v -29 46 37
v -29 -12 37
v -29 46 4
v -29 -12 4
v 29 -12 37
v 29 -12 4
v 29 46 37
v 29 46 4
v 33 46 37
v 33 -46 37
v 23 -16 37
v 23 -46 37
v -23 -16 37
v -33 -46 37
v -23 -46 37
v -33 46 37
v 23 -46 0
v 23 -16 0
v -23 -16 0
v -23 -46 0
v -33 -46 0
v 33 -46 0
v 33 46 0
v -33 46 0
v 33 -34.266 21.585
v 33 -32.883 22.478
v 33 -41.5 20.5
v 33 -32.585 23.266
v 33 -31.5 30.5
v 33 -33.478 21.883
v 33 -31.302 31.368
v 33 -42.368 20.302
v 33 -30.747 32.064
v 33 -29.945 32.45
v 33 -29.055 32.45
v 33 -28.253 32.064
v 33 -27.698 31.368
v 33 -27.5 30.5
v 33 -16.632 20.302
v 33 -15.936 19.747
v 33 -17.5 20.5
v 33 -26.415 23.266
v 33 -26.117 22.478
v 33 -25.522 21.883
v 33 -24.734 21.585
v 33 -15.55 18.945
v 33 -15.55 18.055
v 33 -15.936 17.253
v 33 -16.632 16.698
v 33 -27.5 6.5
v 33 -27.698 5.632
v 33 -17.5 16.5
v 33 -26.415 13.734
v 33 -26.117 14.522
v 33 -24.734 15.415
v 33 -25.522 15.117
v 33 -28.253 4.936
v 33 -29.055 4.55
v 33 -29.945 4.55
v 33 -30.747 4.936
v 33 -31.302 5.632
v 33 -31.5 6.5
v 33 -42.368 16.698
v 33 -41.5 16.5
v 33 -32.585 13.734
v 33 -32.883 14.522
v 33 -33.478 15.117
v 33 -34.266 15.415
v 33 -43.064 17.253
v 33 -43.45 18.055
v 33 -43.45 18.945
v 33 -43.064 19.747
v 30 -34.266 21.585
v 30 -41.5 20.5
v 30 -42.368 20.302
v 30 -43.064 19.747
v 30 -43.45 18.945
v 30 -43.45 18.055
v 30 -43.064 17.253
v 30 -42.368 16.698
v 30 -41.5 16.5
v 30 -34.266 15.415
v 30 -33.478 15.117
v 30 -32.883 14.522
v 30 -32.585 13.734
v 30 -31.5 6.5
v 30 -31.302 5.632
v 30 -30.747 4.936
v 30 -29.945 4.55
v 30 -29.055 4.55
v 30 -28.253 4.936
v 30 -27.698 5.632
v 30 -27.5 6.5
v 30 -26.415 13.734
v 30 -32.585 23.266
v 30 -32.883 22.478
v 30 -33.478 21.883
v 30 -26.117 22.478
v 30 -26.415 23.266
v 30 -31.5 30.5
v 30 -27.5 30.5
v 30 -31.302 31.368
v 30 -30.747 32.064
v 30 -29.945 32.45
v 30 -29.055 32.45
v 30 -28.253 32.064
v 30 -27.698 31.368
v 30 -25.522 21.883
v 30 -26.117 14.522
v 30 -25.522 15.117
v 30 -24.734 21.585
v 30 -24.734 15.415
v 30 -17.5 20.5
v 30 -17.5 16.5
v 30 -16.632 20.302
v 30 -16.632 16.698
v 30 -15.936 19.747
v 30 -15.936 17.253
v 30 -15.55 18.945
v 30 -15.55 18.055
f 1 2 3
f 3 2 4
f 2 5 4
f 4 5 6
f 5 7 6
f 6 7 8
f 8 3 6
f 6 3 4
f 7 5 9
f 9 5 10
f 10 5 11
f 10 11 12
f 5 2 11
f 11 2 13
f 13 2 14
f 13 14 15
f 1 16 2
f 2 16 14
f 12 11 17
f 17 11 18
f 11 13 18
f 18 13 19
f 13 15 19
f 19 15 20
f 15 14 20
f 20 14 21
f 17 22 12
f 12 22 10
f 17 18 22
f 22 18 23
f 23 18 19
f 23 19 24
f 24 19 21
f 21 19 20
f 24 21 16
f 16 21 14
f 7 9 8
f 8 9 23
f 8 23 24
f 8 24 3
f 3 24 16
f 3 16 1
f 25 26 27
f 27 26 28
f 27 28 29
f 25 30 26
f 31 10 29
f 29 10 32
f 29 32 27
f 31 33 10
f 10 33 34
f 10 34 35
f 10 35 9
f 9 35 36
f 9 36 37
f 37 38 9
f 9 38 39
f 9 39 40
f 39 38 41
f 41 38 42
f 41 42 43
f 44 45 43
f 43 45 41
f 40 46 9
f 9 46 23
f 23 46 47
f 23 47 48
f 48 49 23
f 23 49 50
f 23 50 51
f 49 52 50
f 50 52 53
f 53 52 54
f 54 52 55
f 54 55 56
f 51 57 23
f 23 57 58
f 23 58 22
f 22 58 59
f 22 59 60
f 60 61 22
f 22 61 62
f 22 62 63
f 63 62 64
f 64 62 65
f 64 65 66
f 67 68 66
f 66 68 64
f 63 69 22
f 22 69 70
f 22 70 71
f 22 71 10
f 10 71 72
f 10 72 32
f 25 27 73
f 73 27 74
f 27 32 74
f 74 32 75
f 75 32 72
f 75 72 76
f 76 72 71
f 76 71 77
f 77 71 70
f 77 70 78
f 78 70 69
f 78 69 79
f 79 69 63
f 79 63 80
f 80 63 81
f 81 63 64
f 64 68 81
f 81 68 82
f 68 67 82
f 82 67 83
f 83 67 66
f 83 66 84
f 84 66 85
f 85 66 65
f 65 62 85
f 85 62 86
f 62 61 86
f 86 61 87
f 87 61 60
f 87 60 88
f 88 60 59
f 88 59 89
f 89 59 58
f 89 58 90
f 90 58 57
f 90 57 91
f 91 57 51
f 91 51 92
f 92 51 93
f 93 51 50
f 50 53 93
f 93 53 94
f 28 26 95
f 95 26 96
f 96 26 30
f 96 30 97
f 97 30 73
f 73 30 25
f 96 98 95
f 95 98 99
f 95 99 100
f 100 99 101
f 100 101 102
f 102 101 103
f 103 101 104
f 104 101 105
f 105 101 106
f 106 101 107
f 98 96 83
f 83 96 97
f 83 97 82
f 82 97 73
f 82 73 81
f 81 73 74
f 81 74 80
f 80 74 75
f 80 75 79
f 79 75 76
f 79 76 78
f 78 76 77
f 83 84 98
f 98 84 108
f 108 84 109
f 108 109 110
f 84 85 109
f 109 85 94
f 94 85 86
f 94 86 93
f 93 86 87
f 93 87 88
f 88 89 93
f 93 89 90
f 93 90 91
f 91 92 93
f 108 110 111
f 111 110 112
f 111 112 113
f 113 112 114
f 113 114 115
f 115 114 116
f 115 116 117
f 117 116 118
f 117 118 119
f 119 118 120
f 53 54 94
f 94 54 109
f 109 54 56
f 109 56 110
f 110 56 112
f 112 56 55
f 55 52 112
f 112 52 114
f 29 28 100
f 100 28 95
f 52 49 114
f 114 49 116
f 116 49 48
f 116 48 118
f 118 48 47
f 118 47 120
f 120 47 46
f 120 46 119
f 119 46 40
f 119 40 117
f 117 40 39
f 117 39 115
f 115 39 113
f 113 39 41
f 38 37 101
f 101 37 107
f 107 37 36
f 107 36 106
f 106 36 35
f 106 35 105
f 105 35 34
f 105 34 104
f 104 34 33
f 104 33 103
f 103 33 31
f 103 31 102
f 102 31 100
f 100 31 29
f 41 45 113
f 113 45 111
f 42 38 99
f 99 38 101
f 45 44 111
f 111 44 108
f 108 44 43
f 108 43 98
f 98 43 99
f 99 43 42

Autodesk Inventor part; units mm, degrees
sketch "Skizze1" plane through (0, 0, 0) normal (0, 0, 1) x (1, 0, 0)
  line L0 (-33, 46) -> (33, 46)
  line L1 (33, 46) -> (33, -46)
  line L2 (33, -46) -> (-33, -46)
  line L3 (-33, -46) -> (-33, 46)
  line L4 (0, -64.4) -> (0, 64.4) projected
  line L5 (-46.2, 0) -> (46.2, 0) projected
  point P0 (0, 0)
  dimension "d0" = 66
  dimension "d1" = 92
extrude "Extrusion1" add sketch "Skizze1" along normal blind 37
sketch "Skizze2" plane through (0, 0, 37) normal (0, 0, 1) x (1, 0, 0)
  line L0 (-33, -46) -> (33, -46) projected
  line L1 (-23, -46) -> (23, -46)
  line L2 (23, -46) -> (23, -16)
  line L3 (23, -16) -> (-23, -16)
  line L4 (-23, -16) -> (-23, -46)
  line L5 (0, -64.4) -> (0, 64.4) projected
  point P0 (0, 0)
  dimension "d4" = 46
  dimension "d5" = 30
extrude "Extrusion2" cut sketch "Skizze2" against normal blind 37
sketch "Skizze3" plane through (0, 0, 37) normal (0, 0, 1) x (1, 0, 0)
  line L0 (33, 46) -> (-33, 46) projected
  line L1 (-29, 46) -> (29, 46)
  line L2 (29, 46) -> (29, -12)
  line L3 (29, -12) -> (-29, -12)
  line L4 (-29, -12) -> (-29, 46)
  line L5 (0, -64.4) -> (0, 64.4) projected
  point P0 (0, 0)
  dimension "d8" = 58
  dimension "d9" = 58
extrude "Extrusion3" cut sketch "Skizze3" against normal blind 33
sketch "Skizze9" plane through (33, -46, 0) normal (1, 0, 0) x (0, 0, -1)
  line L0 (-18.5, 4.5) -> (-18.5, 28.5) construction
  line L1 (-16.5, 4.5) -> (-16.5, 28.5)
  line L2 (-20.5, 28.5) -> (-20.5, 4.5)
  arc A0 (-20.5, 4.5) -> (-16.5, 4.5) centre (-18.5, 4.5) ccw
  arc A1 (-16.5, 28.5) -> (-20.5, 28.5) centre (-18.5, 28.5) ccw
  line L3 (0, 0) -> (-37, 0) projected
  line L4 (0, 0) -> (0, 92) projected
  line L5 (-30.5, 16.5) -> (-6.5, 16.5) construction
  line L6 (-30.5, 14.5) -> (-6.5, 14.5)
  line L7 (-6.5, 18.5) -> (-30.5, 18.5)
  arc A2 (-30.5, 18.5) -> (-30.5, 14.5) centre (-30.5, 16.5) ccw
  arc A3 (-6.5, 14.5) -> (-6.5, 18.5) centre (-6.5, 16.5) ccw
  line L8 (-21.5851, 21.2663) -> (-20.5, 28.5)
  line L9 (-15.4149, 21.2663) -> (-16.5, 28.5)
  line L10 (-21.5851, 11.7337) -> (-20.5, 4.5)
  line L11 (-15.4149, 11.7337) -> (-16.5, 4.5)
  line L12 (-23.2663, 19.5851) -> (-30.5, 18.5)
  line L13 (-23.2663, 13.4149) -> (-30.5, 14.5)
  line L14 (-13.7337, 19.5851) -> (-6.5, 18.5)
  line L15 (-13.7337, 13.4149) -> (-6.5, 14.5)
  arc A4 (-23.2663, 19.5851) -> (-21.5851, 21.2663) centre (-23.5629, 21.5629) ccw
  arc A5 (-15.4149, 21.2663) -> (-13.7337, 19.5851) centre (-13.4371, 21.5629) ccw
  arc A6 (-13.7337, 13.4149) -> (-15.4149, 11.7337) centre (-13.4371, 11.4371) ccw
  arc A7 (-21.5851, 11.7337) -> (-23.2663, 13.4149) centre (-23.5629, 11.4371) ccw
  point P0 (0, 46)
  point P1 (-18.5, 16.5)
  point P2 (-18.5, 16.5)
  point P3 (-22, 18.5)
  point P4 (-15, 18.5)
  point P5 (-22, 14.5)
  point P6 (-15, 14.5)
  point P7 (-20.5, 20)
  point P8 (-20.5, 13)
  point P9 (-16.5, 20)
  point P10 (-16.5, 13)
  point P11 (-20.5, 4.5)
  point P12 (-16.5, 4.5)
  dimension "d59" = 4.5
  dimension "d60" = 2
  dimension "d62" = 4
  dimension "d63" = 24
  dimension "d65" = 24
  dimension "d66" = 2
extrude "Extrusion5" cut sketch "Skizze9" against normal blind 3
properties part number "Block"
